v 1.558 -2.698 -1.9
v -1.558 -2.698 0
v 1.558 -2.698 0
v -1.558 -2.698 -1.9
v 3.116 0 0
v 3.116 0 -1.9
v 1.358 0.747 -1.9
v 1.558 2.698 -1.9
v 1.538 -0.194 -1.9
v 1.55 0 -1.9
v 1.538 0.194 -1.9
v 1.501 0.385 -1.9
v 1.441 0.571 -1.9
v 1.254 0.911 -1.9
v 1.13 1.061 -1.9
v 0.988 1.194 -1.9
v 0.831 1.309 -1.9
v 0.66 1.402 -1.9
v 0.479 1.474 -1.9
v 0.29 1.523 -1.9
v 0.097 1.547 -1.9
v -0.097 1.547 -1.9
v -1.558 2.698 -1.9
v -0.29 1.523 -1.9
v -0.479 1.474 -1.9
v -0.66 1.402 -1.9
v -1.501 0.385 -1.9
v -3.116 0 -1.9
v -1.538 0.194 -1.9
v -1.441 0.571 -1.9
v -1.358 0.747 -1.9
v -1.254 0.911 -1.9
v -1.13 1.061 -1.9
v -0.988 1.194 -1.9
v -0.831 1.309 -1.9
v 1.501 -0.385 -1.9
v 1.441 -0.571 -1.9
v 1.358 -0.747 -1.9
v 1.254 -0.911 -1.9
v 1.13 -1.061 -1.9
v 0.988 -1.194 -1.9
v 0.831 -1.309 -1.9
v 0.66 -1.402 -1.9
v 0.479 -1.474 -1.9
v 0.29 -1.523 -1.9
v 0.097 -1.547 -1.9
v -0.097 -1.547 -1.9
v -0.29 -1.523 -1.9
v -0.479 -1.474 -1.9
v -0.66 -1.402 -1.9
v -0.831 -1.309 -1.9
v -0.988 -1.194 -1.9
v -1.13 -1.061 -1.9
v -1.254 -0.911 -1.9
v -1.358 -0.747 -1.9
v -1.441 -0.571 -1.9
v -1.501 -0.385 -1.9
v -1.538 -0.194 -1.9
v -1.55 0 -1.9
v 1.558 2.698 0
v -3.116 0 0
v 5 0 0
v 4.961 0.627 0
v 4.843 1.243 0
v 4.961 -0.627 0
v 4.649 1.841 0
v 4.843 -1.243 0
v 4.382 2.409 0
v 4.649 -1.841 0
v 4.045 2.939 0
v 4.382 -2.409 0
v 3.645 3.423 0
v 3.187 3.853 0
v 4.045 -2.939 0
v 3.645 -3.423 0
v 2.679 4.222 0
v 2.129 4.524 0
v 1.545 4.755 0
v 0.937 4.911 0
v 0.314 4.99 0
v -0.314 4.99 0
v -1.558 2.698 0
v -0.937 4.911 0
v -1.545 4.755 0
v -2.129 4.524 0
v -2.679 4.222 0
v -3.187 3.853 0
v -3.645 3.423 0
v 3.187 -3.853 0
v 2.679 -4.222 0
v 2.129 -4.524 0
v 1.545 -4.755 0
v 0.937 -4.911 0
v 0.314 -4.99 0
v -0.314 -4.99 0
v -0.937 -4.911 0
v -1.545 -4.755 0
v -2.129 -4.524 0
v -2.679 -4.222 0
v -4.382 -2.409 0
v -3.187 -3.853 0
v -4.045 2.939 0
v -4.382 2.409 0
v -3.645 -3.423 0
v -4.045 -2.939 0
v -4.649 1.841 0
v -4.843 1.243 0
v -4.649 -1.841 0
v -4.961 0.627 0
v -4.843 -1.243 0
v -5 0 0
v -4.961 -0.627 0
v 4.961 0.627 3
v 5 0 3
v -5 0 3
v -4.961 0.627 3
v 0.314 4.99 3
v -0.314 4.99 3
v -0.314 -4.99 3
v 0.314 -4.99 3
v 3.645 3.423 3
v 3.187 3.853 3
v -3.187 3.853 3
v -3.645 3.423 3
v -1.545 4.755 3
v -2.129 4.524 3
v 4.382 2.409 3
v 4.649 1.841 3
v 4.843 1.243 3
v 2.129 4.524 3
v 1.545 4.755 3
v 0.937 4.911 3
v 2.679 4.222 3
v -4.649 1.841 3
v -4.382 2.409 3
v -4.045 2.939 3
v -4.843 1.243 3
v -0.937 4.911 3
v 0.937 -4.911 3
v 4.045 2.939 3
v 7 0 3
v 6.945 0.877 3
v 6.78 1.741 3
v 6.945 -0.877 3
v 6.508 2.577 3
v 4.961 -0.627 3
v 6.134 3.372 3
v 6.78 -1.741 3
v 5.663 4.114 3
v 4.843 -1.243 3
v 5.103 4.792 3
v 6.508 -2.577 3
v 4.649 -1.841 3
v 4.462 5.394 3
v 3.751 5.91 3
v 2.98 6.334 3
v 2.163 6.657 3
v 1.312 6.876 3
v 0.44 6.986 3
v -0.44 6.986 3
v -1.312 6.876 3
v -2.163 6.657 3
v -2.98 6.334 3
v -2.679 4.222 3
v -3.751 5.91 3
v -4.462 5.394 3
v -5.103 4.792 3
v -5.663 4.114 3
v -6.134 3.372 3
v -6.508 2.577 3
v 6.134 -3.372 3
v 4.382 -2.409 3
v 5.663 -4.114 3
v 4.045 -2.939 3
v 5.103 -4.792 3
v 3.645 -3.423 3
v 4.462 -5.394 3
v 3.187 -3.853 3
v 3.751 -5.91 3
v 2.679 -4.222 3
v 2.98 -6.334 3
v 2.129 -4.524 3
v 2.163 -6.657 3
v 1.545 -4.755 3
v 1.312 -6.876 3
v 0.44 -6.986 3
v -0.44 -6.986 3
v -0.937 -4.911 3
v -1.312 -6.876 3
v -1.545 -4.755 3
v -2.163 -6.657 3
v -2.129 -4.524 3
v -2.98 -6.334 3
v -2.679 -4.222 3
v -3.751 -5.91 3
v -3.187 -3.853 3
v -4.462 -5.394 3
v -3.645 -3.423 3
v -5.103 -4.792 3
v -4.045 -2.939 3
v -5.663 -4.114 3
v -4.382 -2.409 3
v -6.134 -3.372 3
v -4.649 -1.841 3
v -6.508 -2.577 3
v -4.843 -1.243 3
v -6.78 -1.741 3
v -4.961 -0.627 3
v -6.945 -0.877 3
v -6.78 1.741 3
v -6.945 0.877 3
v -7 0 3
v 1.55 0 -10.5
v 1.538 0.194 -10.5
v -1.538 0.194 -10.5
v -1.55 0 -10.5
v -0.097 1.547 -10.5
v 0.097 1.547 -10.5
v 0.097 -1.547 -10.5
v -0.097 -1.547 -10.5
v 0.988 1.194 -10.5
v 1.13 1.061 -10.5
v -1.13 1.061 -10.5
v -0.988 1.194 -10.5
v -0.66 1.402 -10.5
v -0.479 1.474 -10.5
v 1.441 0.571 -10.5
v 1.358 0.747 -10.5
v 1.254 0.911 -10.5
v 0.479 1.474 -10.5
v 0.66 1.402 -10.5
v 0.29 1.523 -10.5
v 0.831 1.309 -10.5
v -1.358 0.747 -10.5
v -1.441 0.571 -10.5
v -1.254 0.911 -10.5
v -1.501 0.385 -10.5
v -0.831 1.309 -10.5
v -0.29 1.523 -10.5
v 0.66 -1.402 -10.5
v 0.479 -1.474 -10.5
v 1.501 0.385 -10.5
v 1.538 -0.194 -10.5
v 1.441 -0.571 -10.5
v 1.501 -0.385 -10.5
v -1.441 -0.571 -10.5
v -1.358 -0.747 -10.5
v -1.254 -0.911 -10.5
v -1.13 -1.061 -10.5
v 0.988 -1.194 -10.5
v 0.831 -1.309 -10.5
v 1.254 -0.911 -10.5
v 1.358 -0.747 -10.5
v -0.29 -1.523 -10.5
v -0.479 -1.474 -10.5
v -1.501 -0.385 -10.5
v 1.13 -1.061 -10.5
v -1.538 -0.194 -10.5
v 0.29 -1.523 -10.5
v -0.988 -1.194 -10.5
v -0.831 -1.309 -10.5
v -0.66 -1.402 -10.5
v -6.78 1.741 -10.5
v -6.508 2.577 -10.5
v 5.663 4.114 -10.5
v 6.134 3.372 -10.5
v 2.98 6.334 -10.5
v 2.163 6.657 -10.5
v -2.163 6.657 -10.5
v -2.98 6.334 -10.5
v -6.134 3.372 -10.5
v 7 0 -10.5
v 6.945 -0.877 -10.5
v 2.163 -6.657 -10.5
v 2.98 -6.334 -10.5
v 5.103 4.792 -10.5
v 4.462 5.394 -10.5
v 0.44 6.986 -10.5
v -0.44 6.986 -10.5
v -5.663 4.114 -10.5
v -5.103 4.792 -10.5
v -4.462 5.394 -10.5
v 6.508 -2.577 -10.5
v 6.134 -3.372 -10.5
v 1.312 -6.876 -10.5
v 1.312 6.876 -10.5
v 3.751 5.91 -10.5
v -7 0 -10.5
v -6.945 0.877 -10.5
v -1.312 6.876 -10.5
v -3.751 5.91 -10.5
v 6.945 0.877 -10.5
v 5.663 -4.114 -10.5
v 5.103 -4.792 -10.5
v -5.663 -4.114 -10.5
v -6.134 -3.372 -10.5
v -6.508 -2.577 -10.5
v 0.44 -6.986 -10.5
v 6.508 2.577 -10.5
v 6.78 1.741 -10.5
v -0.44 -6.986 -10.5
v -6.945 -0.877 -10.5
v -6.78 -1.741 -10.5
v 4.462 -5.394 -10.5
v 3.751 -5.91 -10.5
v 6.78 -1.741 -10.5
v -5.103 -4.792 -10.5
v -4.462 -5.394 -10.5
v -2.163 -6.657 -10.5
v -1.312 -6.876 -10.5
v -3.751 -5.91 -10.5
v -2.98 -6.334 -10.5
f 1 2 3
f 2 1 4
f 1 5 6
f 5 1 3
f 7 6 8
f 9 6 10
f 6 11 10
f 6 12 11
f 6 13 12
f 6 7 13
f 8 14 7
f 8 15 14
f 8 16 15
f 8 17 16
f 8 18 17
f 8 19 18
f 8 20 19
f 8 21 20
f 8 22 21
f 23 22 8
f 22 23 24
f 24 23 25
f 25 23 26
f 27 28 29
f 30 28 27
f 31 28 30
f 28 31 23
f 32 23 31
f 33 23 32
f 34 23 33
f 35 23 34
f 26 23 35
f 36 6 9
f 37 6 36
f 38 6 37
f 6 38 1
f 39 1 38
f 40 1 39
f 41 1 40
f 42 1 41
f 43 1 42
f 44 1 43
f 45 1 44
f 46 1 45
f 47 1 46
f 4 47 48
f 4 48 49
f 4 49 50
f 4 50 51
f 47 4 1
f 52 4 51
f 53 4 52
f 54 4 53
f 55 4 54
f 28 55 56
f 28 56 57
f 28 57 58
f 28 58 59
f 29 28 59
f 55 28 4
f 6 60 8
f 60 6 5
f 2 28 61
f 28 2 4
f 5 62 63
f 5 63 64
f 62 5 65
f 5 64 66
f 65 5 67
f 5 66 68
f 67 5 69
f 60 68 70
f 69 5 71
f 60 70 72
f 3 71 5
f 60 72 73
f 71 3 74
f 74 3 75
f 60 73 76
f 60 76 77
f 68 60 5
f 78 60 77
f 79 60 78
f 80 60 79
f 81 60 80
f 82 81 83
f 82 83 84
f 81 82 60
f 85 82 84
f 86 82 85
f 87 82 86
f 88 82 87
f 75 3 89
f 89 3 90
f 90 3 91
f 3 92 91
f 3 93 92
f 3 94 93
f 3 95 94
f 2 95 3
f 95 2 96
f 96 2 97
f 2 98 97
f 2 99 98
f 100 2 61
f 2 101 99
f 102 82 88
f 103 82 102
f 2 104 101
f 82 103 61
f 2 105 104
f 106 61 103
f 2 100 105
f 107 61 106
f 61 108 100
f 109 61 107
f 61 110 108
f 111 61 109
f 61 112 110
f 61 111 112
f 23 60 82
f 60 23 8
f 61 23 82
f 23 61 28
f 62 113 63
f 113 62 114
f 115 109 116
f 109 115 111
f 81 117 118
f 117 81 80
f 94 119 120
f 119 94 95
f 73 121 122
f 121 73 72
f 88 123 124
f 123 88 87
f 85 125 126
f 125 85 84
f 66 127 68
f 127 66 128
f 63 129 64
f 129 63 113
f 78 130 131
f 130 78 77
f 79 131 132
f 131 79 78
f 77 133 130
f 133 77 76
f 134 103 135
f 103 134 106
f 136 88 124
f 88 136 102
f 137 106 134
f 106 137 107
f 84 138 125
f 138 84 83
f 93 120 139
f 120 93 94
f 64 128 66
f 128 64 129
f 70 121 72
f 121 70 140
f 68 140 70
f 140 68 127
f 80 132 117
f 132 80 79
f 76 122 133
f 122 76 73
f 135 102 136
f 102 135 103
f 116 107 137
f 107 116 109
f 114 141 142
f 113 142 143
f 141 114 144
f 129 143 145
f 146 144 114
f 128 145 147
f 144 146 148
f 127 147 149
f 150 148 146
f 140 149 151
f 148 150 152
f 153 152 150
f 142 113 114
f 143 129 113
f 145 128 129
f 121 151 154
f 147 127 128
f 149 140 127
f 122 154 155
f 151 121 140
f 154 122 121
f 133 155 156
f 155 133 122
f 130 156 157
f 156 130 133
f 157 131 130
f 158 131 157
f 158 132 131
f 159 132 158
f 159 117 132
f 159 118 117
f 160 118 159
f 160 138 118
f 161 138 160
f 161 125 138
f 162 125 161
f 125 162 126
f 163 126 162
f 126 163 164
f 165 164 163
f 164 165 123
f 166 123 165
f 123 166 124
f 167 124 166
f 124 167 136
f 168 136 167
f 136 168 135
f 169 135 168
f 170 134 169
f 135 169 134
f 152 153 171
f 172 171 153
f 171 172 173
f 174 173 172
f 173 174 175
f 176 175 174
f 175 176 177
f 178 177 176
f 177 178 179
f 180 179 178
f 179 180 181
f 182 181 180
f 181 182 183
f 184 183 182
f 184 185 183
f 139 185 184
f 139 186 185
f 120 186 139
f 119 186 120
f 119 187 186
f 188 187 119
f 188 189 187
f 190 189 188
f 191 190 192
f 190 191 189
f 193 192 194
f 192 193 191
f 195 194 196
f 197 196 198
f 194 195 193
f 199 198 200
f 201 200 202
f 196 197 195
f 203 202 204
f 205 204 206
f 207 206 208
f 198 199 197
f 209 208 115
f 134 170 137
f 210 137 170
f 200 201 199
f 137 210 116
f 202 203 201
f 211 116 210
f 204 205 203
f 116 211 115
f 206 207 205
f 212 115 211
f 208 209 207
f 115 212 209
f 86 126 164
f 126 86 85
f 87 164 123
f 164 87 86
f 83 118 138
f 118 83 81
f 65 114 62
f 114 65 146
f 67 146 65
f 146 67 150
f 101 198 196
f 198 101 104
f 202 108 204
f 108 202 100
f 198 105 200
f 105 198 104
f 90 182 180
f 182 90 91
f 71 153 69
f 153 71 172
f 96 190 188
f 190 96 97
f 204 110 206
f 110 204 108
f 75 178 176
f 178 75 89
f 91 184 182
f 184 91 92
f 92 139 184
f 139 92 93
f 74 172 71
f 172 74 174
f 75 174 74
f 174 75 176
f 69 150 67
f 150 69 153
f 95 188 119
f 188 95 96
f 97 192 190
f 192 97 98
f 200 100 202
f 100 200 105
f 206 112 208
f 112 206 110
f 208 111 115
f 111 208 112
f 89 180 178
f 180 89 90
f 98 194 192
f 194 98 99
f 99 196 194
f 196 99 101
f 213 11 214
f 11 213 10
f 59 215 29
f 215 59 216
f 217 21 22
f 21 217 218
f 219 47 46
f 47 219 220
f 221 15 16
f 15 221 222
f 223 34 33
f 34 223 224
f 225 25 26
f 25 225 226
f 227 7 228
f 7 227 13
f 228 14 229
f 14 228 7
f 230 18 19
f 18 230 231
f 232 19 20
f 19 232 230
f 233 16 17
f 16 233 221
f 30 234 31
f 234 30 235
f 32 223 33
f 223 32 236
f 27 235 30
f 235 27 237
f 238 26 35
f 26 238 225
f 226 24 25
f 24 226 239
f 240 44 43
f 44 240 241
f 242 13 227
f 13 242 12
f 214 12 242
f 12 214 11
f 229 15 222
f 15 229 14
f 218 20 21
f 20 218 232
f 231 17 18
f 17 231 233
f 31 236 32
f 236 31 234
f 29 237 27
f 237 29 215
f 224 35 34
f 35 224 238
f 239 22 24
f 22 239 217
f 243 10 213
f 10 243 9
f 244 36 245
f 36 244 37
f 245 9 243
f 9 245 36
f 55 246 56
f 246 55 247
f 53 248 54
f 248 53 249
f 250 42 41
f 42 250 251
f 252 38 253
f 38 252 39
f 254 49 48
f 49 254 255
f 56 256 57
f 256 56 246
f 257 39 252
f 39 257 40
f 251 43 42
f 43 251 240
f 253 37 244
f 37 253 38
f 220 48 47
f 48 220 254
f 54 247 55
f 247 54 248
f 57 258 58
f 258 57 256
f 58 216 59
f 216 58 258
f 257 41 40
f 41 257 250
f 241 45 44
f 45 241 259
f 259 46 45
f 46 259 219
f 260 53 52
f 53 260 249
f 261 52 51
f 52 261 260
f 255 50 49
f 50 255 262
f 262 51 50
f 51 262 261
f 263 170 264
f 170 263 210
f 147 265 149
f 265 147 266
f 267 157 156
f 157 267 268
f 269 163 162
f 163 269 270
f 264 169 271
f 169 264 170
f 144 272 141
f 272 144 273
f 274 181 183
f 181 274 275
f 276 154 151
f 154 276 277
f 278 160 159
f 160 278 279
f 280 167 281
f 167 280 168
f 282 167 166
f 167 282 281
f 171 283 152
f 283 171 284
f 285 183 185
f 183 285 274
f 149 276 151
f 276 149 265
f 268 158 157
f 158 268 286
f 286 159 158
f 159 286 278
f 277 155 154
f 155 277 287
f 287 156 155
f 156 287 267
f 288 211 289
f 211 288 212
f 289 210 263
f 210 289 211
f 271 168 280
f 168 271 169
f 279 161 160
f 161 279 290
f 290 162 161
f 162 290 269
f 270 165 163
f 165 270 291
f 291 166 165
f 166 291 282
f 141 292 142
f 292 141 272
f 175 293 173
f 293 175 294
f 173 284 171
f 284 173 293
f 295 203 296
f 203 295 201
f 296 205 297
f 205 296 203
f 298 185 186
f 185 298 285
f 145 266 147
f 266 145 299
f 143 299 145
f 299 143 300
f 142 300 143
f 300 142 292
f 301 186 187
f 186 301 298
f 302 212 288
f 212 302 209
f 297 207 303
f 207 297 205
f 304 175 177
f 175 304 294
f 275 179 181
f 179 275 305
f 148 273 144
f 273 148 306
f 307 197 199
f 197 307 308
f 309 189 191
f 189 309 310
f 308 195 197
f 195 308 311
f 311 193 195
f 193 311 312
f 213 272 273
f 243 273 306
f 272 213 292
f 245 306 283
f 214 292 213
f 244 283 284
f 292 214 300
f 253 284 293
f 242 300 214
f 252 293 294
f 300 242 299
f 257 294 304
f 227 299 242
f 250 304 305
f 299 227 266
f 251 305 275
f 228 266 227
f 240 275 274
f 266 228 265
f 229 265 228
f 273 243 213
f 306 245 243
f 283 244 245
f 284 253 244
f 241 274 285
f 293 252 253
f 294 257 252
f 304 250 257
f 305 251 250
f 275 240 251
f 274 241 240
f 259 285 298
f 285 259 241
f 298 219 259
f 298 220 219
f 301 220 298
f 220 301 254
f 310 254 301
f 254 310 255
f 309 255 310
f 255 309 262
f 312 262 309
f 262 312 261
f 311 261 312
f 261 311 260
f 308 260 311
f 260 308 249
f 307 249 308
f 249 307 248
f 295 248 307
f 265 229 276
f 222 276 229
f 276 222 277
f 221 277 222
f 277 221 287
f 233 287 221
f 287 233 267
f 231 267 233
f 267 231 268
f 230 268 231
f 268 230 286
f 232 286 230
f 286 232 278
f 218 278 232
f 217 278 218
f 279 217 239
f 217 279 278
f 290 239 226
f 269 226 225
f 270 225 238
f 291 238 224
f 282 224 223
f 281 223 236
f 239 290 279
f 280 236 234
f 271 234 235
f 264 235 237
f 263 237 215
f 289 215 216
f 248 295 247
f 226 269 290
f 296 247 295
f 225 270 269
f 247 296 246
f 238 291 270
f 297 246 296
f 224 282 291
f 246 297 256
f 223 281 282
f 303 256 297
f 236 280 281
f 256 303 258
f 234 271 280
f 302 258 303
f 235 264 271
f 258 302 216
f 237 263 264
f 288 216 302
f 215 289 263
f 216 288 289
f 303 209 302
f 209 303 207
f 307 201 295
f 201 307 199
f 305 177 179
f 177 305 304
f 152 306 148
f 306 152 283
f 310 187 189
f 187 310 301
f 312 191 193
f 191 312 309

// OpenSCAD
$fn = 50;

difference() {
	union() {
		translate(v = [0, 0, -10.5]) {
			cylinder(h = 13.5, r = 7.0);
		}
	}
	union() {
		translate(v = [0, 0, 0]) {
			rotate(a = [0, 0, 0]) {
				difference() {
					union() {
						translate(v = [0, 0, -1.9]) {
							linear_extrude(height = 1.9) {
								polygon(points = [[3.1158, 0.0], [1.5579000000000005, 2.698361953111554], [-1.5578999999999994, 2.6983619531115544], [-3.1158, 3.815754496783323e-16], [-1.5579000000000014, -2.6983619531115535], [1.557899999999998, -2.6983619531115552]]);
							}
						}
					}
					union();
				}
			}
		}
		#cylinder(h = 3, r = 5.0);
		#translate(v = [0, 0, -100.0]) {
			cylinder(h = 200, r = 1.55);
		}
	}
}
